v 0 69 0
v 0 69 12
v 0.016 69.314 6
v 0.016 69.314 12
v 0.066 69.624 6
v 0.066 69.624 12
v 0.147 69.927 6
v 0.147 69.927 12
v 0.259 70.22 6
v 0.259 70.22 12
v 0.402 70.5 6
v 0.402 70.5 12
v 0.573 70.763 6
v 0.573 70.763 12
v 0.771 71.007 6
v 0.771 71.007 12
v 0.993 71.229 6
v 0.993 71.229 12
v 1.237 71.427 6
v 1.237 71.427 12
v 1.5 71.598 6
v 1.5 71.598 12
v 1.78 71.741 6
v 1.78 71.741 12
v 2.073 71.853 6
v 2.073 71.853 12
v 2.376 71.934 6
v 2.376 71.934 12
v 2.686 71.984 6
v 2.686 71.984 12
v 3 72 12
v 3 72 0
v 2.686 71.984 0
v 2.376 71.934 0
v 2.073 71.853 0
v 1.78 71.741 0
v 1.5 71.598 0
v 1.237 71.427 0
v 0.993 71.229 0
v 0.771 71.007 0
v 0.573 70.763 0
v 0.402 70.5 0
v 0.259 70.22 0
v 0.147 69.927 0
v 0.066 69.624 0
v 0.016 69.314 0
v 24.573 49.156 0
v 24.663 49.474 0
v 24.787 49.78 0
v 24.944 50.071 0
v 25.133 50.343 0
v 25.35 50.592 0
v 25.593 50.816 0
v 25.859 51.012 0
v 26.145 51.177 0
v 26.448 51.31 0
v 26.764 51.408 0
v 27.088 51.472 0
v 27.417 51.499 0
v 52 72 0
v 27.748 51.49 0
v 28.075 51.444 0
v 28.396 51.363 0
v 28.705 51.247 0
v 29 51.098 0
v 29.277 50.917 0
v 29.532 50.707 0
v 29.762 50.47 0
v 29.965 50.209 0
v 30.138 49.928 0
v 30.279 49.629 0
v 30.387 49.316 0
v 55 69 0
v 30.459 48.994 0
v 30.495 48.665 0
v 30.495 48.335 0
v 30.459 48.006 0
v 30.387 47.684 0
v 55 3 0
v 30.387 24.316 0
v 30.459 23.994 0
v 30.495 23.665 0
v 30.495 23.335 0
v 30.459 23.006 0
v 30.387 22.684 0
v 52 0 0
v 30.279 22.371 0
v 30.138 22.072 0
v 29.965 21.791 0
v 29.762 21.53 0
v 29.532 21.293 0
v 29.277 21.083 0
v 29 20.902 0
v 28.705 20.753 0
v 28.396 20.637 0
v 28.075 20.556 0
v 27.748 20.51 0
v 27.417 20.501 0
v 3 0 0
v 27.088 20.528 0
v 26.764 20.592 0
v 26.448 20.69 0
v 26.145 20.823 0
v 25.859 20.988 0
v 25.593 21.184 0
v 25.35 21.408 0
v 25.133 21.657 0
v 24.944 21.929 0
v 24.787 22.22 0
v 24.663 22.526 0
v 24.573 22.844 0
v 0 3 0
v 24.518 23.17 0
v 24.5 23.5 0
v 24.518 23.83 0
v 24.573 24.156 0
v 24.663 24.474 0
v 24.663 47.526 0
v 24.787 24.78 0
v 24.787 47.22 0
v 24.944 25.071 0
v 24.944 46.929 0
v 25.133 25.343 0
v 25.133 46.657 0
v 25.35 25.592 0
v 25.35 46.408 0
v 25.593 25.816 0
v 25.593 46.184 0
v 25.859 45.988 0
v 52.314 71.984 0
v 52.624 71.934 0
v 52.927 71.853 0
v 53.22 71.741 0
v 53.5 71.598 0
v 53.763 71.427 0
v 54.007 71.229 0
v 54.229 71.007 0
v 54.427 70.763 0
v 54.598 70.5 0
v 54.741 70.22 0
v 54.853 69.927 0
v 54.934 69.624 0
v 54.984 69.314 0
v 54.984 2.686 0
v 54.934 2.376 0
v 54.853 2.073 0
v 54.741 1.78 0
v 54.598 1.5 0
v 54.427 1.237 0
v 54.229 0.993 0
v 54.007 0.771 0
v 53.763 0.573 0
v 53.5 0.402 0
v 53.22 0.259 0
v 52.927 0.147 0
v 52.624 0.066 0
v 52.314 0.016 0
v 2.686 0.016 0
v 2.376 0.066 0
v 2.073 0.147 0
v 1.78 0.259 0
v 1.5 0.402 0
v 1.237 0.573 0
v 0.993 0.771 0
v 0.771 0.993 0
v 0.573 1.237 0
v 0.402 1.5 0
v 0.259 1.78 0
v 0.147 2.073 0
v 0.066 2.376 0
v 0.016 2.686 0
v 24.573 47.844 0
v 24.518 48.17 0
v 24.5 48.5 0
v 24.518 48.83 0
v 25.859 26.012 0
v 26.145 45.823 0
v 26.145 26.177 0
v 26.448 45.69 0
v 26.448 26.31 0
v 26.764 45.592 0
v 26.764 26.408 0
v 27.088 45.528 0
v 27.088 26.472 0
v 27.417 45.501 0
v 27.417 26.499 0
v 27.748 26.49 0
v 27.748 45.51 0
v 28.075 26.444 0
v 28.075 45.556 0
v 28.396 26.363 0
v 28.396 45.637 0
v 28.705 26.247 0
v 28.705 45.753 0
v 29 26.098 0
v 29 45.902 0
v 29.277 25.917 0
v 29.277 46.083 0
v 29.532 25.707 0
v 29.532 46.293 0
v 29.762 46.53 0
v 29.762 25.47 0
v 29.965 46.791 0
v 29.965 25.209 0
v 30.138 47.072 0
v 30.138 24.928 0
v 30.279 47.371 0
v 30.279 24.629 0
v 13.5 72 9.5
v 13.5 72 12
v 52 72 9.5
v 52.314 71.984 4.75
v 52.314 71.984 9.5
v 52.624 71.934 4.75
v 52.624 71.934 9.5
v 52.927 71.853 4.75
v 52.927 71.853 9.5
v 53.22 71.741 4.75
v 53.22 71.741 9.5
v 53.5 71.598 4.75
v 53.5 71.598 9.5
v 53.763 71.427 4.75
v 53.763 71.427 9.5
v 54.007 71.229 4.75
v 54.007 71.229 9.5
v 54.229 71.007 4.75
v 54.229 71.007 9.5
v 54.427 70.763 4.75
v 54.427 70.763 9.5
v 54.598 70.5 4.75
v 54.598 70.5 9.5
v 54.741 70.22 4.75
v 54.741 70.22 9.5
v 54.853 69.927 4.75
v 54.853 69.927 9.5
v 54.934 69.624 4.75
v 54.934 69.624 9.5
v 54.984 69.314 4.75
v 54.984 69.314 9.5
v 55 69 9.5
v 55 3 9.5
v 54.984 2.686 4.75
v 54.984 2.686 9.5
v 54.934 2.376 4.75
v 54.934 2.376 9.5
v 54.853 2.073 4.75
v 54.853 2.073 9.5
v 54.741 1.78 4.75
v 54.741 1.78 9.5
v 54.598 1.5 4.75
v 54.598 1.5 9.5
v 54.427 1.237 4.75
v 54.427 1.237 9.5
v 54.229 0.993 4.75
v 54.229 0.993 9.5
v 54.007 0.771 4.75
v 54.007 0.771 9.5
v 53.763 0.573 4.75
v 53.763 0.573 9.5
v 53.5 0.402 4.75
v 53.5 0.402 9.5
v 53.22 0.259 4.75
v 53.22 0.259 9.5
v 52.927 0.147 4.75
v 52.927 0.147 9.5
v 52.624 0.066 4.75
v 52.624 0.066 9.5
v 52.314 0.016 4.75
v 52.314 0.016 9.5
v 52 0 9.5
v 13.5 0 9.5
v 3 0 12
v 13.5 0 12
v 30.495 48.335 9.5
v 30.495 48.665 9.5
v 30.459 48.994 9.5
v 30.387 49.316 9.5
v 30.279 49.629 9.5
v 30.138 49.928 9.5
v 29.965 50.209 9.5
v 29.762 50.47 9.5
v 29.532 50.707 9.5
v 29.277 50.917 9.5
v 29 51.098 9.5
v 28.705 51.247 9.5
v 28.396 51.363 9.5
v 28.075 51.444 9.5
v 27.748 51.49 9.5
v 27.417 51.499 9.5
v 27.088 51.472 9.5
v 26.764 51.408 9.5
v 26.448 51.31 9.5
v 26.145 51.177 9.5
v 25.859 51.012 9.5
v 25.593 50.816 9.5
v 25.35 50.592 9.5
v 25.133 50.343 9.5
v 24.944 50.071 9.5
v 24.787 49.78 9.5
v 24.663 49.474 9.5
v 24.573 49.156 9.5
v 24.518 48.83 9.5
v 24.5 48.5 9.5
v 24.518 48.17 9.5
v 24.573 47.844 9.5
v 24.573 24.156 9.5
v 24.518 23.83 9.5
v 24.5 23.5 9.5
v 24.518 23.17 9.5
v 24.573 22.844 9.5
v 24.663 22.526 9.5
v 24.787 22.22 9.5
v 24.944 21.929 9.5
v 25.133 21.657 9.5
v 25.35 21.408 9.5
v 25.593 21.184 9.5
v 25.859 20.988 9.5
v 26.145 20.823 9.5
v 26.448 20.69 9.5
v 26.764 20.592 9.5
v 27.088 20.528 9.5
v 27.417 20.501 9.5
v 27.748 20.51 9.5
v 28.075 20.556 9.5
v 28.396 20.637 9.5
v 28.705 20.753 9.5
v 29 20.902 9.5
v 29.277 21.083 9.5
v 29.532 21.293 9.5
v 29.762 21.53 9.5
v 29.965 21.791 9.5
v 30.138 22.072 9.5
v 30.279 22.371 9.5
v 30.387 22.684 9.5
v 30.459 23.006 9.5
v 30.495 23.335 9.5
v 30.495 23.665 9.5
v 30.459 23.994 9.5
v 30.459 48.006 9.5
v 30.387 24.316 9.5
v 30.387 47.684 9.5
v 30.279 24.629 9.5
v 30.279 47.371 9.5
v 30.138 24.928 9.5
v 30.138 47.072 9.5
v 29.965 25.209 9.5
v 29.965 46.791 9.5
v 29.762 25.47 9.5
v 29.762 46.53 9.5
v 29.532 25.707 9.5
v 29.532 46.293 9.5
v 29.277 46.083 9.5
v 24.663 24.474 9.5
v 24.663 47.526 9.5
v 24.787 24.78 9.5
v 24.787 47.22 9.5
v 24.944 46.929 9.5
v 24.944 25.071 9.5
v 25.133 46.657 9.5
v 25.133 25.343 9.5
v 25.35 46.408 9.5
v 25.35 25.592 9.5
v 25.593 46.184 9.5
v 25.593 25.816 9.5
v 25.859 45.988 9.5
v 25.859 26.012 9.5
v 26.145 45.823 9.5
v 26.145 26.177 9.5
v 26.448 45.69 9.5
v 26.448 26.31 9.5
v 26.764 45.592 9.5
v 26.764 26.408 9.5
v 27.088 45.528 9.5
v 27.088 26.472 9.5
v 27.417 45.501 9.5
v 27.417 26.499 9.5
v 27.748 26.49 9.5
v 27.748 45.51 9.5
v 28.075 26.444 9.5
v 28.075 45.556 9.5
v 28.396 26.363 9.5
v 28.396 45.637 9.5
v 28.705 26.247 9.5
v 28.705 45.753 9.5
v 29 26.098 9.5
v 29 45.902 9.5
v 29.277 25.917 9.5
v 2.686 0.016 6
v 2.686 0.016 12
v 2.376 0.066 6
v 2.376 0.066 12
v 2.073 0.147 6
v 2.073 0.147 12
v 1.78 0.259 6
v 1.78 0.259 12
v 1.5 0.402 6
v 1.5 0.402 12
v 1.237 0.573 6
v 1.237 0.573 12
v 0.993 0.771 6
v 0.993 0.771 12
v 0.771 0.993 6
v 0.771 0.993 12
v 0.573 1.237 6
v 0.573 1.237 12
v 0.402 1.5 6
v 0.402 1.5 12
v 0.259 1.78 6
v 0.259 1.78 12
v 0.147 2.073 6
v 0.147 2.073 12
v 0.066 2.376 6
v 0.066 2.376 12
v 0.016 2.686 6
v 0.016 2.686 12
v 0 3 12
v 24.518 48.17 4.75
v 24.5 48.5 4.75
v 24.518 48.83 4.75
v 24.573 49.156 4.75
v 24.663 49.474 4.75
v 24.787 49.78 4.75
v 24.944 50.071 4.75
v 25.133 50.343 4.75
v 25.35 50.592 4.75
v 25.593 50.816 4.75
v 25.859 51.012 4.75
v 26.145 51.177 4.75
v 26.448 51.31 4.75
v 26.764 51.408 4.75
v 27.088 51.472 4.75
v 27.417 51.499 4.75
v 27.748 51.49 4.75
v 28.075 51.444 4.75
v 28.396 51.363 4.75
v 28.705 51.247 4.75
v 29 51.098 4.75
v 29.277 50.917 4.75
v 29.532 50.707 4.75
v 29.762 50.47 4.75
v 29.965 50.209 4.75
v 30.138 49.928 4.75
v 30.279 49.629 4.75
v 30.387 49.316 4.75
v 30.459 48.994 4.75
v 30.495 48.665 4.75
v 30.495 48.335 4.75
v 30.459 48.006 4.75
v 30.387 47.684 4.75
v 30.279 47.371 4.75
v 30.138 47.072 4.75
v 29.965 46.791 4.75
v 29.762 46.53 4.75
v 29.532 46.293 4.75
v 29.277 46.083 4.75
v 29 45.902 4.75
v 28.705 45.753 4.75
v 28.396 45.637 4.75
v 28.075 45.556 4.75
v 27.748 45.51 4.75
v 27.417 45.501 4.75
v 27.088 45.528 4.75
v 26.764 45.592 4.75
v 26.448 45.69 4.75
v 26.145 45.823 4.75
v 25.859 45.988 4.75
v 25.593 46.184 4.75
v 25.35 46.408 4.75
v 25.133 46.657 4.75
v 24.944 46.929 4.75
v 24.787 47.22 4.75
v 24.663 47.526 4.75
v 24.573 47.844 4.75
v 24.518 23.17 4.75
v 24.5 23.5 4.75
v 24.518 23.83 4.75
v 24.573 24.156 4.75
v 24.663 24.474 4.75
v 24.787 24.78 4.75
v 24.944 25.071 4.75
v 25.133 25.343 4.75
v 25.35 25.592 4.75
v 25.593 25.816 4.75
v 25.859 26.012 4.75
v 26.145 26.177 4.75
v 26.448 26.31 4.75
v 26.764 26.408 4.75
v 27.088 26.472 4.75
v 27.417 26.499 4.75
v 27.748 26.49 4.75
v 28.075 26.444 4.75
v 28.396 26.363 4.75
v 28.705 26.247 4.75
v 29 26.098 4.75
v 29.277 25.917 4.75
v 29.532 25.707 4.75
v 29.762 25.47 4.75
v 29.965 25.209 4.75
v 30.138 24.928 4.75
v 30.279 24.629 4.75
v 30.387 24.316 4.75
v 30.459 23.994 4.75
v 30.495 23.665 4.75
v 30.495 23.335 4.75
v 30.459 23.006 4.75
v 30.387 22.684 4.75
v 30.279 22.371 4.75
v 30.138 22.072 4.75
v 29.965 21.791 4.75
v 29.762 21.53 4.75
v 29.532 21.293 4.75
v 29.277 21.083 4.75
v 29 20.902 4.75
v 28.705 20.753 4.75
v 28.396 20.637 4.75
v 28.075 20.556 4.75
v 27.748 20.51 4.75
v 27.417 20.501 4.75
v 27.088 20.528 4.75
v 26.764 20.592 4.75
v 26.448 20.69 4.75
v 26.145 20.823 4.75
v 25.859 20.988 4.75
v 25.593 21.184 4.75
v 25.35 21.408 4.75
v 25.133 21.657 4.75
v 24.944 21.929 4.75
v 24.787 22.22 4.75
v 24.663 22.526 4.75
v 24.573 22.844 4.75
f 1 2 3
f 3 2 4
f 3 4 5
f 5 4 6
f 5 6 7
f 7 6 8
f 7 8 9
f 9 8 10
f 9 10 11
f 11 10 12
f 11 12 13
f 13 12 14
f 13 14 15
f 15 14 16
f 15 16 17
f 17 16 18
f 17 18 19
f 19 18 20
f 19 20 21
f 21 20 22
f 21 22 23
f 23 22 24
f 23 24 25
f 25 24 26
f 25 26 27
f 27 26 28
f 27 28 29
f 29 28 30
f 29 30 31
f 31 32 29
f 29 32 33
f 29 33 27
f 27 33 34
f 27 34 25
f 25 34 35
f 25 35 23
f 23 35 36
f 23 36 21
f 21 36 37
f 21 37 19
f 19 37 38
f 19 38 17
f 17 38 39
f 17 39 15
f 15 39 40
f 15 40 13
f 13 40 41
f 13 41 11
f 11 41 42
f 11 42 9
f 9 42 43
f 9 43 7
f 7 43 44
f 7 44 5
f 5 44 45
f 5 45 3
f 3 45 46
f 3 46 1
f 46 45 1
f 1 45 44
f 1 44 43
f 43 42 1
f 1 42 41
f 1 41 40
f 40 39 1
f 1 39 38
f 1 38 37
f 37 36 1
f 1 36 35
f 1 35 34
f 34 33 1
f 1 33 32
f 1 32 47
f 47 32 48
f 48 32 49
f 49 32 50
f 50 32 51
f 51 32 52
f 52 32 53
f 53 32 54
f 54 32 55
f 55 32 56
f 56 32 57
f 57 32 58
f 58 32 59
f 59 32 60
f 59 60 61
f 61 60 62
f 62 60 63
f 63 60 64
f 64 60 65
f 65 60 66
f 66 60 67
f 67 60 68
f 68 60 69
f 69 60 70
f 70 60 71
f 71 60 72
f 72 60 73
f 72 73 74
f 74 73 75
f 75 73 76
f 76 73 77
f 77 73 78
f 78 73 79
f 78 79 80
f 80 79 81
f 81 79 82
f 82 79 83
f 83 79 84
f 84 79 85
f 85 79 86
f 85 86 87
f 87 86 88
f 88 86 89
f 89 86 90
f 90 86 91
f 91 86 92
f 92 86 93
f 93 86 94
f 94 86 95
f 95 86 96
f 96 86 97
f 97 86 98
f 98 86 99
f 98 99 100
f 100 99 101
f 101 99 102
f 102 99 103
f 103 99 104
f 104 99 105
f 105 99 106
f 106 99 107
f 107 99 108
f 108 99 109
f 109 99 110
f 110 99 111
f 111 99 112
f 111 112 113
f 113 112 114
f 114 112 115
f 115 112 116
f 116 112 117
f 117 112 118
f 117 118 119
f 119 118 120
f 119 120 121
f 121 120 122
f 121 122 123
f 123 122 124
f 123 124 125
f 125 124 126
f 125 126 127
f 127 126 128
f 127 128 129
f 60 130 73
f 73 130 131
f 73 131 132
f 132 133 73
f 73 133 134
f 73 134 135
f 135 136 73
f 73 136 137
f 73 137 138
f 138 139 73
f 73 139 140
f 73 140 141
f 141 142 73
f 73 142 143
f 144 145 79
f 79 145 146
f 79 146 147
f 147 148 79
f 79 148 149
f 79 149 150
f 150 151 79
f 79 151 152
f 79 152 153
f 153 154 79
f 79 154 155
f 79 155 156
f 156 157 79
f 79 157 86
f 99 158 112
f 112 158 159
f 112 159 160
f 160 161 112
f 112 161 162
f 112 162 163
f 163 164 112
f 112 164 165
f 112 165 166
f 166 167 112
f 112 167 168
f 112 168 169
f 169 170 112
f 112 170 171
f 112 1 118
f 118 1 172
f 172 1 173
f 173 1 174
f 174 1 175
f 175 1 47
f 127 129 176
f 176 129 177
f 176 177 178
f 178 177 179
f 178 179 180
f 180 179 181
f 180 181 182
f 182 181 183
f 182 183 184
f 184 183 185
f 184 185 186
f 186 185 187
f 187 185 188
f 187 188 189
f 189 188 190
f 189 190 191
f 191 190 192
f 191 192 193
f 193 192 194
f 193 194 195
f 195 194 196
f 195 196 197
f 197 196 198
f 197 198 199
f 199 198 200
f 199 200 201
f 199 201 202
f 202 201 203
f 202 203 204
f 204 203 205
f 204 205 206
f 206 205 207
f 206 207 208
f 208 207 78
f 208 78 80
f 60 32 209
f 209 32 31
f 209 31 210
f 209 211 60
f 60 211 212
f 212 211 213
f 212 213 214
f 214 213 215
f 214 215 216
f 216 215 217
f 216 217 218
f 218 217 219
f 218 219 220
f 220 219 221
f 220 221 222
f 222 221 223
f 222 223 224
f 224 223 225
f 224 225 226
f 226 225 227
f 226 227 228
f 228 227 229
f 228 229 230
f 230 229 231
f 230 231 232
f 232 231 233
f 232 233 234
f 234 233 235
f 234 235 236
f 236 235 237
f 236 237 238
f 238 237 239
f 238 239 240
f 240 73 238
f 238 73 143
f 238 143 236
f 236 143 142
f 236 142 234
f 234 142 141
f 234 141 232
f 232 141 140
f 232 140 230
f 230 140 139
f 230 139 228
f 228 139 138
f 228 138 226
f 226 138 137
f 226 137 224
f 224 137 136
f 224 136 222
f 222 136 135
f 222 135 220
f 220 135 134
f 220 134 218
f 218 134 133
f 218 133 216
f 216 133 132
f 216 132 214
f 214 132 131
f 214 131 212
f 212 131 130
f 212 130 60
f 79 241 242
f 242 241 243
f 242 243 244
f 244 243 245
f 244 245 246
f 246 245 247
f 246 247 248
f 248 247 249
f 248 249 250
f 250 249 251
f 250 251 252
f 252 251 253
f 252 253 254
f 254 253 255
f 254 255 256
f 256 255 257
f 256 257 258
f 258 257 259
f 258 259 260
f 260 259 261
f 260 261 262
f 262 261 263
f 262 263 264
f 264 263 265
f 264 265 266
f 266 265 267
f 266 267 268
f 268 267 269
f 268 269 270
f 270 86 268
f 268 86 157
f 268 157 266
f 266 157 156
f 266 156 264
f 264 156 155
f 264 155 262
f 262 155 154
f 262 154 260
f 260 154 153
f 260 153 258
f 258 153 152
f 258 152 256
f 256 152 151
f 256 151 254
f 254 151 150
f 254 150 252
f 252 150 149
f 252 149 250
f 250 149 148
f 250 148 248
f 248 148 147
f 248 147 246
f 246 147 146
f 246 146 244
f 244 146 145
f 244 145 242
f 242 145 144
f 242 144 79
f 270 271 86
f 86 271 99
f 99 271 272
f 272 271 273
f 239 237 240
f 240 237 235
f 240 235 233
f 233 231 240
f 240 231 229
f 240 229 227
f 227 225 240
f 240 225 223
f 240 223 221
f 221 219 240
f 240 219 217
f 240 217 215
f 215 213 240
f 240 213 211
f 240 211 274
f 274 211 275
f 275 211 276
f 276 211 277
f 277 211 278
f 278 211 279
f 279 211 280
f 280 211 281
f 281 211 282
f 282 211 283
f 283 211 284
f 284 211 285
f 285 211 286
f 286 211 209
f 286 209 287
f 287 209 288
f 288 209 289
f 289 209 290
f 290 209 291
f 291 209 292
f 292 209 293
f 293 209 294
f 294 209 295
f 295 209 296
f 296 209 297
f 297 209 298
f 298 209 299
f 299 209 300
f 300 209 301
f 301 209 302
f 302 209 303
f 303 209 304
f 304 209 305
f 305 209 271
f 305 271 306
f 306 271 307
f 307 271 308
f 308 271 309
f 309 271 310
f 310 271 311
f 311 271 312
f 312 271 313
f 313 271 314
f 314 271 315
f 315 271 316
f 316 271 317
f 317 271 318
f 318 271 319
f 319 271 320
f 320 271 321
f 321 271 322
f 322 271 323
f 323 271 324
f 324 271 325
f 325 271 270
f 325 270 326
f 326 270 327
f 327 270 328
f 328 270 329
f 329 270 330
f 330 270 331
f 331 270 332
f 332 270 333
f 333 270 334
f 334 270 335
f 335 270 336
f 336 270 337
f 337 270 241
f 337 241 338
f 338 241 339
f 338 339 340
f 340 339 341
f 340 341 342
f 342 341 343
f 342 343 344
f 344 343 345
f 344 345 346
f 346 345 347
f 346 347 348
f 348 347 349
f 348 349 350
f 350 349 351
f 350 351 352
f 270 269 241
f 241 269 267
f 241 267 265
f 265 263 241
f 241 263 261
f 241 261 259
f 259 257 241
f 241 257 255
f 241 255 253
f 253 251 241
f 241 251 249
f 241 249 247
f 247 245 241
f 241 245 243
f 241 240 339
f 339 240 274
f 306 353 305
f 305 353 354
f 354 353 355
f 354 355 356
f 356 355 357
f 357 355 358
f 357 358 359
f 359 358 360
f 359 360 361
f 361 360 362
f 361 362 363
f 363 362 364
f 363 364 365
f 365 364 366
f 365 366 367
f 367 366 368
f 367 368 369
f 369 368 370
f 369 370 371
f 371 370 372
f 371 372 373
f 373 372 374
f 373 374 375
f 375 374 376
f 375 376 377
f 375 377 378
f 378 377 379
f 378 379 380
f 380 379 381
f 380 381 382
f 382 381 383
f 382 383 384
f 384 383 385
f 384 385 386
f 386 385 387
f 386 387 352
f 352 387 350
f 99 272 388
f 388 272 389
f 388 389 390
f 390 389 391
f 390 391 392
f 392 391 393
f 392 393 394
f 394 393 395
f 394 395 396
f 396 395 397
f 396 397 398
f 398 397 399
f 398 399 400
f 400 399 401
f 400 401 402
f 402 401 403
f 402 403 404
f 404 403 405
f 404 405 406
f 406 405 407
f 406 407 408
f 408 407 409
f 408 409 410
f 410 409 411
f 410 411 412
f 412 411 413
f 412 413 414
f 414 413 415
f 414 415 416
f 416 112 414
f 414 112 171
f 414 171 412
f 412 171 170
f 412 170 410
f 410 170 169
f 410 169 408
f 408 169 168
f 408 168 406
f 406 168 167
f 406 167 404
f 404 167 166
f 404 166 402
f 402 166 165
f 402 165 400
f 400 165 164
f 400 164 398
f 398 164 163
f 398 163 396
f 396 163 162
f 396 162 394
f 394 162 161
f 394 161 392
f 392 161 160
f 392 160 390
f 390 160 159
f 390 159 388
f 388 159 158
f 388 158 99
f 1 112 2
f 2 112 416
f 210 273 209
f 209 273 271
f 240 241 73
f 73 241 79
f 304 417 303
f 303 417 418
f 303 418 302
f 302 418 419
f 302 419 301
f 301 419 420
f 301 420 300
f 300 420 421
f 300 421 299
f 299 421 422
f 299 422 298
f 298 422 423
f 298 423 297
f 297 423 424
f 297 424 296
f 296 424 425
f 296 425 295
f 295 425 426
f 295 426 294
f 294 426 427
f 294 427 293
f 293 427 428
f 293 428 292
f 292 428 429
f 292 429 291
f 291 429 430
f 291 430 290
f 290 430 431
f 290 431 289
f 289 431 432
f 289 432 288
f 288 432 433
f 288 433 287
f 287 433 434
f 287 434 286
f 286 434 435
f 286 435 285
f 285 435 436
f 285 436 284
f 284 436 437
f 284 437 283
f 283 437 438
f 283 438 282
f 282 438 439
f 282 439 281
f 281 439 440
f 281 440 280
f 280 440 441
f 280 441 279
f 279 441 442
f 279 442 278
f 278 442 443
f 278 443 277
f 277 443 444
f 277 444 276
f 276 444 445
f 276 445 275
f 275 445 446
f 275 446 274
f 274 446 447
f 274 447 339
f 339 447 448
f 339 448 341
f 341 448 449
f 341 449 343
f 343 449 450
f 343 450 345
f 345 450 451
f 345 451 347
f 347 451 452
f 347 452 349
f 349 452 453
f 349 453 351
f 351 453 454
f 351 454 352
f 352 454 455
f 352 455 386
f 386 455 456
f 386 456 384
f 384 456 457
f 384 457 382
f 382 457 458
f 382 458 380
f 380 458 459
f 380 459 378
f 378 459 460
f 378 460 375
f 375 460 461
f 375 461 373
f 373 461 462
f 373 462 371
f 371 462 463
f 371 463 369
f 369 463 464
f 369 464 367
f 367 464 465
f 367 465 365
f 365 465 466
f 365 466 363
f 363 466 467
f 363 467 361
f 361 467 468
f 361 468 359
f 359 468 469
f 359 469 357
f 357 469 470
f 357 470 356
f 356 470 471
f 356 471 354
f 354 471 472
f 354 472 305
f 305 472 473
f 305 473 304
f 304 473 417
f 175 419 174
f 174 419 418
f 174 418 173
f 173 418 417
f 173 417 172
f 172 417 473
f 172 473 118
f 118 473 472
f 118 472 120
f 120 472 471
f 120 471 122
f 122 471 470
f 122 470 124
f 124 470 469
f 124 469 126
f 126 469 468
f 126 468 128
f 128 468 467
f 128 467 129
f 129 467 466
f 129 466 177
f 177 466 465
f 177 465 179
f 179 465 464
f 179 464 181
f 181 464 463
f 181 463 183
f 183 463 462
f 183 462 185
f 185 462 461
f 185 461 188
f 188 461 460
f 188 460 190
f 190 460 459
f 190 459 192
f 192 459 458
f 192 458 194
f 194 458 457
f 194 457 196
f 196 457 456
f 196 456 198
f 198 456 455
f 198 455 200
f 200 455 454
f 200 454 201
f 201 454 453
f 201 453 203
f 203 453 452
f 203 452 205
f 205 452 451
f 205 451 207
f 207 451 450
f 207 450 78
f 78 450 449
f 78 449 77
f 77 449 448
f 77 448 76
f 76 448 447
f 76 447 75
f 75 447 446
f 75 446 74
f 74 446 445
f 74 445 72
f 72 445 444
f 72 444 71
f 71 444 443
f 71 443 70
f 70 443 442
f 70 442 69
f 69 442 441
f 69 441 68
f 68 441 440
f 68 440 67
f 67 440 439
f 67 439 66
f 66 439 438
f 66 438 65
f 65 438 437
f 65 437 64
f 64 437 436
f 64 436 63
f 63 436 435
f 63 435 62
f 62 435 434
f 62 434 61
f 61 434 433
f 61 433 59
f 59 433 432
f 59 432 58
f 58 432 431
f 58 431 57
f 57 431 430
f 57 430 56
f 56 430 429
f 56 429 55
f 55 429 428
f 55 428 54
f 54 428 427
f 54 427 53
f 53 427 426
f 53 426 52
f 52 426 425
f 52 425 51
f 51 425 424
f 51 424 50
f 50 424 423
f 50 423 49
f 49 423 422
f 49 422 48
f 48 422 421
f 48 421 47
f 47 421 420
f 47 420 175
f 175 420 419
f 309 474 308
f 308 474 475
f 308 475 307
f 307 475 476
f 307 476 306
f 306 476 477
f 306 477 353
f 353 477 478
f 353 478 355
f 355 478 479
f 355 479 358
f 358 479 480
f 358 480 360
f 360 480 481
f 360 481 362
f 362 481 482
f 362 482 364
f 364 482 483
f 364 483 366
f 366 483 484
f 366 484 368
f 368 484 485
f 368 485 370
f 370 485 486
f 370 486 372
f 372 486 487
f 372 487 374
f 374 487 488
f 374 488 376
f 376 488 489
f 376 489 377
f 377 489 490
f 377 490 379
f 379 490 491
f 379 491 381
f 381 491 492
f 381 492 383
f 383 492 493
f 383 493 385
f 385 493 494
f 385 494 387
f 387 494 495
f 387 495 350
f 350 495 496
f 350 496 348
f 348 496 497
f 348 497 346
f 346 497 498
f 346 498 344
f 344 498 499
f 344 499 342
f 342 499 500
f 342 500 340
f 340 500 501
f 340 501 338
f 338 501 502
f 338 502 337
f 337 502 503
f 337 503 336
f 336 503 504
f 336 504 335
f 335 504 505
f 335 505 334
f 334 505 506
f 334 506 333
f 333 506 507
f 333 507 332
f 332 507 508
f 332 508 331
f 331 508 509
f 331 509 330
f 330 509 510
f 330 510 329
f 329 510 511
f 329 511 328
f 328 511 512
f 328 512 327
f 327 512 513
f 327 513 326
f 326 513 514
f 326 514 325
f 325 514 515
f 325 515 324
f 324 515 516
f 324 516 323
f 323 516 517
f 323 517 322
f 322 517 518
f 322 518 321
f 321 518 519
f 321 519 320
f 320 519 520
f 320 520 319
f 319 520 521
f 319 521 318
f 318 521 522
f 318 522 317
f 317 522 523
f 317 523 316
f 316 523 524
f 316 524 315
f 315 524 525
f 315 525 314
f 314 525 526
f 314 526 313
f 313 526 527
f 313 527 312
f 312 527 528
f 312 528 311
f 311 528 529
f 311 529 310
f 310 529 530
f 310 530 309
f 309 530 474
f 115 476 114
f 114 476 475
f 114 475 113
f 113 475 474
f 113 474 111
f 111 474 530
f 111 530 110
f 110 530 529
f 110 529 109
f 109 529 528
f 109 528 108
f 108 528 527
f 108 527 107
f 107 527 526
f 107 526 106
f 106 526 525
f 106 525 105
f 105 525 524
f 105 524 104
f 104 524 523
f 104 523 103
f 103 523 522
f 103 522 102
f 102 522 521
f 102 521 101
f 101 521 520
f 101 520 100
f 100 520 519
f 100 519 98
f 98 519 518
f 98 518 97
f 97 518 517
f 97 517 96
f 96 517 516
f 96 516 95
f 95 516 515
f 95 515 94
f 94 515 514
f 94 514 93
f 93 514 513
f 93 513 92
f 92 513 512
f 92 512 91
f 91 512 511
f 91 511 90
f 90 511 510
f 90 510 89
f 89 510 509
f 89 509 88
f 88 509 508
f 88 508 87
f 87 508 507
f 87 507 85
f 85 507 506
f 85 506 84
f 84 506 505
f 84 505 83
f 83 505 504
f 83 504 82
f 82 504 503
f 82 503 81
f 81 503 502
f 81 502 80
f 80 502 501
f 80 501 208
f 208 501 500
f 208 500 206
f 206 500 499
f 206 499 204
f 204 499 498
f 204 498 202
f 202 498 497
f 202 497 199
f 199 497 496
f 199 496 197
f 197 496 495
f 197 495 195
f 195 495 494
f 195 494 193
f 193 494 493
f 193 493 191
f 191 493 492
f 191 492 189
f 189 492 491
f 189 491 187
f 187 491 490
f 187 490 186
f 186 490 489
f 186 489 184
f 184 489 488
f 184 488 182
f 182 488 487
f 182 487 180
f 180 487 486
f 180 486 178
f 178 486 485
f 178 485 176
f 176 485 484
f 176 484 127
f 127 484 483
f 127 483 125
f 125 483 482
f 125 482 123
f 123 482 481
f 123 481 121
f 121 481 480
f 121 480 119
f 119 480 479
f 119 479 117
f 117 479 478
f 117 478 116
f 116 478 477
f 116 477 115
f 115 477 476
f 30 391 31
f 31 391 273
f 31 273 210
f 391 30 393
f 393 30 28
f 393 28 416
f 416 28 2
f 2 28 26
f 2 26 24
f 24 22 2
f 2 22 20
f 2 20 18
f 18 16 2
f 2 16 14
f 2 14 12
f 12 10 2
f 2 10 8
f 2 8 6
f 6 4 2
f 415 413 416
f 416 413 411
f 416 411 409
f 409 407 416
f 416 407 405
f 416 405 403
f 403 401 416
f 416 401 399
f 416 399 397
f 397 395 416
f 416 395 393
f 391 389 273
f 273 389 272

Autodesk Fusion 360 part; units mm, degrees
sketch "Sketch1" plane through (0, 0, 0) normal (0, 0, 1) x (1, 0, 0)
  line L0 (0, 0) -> (55, 0)
  line L1 (55, 0) -> (55, 72)
  line L2 (55, 72) -> (0, 72)
  line L3 (0, 72) -> (0, 0)
  circle A0 centre (27.5, 23.5) radius 3
  line L4 (0, 36) -> (55, 36) construction
  circle A1 centre (27.5, 48.5) radius 3
  dimension "d1" = 55
  dimension "d2" = 72
  dimension "d8" = 6
  dimension "d9" = 25
extrude "Extrude1" add sketch "Sketch1" along normal blind 12
sketch "Sketch2" plane through (0, 0, 12) normal (0, 0, 1) x (-1, 0, 0)
  line L0 (0, -72) -> (0, 0)
  line L1 (0, 0) -> (-55, 0)
  line L2 (-55, 0) -> (-55, -72)
  line L3 (-55, -72) -> (0, -72)
  line L4 (-13.5, 0) -> (-13.5, -72)
  circle A0 centre (-27.5, -23.5) radius 3
  circle A1 centre (-27.5, -48.5) radius 3
  dimension "d5" = 13.5
extrude "Extrude2" cut sketch "Sketch2" against normal blind 2.5 contours L1 L2 L3 L4 | A0 | A1
fillet "Fillet1" radius 3 4 edges at (0, 0, 6) (55, 0, 4.75) (55, 72, 4.75) (0, 72, 6)
